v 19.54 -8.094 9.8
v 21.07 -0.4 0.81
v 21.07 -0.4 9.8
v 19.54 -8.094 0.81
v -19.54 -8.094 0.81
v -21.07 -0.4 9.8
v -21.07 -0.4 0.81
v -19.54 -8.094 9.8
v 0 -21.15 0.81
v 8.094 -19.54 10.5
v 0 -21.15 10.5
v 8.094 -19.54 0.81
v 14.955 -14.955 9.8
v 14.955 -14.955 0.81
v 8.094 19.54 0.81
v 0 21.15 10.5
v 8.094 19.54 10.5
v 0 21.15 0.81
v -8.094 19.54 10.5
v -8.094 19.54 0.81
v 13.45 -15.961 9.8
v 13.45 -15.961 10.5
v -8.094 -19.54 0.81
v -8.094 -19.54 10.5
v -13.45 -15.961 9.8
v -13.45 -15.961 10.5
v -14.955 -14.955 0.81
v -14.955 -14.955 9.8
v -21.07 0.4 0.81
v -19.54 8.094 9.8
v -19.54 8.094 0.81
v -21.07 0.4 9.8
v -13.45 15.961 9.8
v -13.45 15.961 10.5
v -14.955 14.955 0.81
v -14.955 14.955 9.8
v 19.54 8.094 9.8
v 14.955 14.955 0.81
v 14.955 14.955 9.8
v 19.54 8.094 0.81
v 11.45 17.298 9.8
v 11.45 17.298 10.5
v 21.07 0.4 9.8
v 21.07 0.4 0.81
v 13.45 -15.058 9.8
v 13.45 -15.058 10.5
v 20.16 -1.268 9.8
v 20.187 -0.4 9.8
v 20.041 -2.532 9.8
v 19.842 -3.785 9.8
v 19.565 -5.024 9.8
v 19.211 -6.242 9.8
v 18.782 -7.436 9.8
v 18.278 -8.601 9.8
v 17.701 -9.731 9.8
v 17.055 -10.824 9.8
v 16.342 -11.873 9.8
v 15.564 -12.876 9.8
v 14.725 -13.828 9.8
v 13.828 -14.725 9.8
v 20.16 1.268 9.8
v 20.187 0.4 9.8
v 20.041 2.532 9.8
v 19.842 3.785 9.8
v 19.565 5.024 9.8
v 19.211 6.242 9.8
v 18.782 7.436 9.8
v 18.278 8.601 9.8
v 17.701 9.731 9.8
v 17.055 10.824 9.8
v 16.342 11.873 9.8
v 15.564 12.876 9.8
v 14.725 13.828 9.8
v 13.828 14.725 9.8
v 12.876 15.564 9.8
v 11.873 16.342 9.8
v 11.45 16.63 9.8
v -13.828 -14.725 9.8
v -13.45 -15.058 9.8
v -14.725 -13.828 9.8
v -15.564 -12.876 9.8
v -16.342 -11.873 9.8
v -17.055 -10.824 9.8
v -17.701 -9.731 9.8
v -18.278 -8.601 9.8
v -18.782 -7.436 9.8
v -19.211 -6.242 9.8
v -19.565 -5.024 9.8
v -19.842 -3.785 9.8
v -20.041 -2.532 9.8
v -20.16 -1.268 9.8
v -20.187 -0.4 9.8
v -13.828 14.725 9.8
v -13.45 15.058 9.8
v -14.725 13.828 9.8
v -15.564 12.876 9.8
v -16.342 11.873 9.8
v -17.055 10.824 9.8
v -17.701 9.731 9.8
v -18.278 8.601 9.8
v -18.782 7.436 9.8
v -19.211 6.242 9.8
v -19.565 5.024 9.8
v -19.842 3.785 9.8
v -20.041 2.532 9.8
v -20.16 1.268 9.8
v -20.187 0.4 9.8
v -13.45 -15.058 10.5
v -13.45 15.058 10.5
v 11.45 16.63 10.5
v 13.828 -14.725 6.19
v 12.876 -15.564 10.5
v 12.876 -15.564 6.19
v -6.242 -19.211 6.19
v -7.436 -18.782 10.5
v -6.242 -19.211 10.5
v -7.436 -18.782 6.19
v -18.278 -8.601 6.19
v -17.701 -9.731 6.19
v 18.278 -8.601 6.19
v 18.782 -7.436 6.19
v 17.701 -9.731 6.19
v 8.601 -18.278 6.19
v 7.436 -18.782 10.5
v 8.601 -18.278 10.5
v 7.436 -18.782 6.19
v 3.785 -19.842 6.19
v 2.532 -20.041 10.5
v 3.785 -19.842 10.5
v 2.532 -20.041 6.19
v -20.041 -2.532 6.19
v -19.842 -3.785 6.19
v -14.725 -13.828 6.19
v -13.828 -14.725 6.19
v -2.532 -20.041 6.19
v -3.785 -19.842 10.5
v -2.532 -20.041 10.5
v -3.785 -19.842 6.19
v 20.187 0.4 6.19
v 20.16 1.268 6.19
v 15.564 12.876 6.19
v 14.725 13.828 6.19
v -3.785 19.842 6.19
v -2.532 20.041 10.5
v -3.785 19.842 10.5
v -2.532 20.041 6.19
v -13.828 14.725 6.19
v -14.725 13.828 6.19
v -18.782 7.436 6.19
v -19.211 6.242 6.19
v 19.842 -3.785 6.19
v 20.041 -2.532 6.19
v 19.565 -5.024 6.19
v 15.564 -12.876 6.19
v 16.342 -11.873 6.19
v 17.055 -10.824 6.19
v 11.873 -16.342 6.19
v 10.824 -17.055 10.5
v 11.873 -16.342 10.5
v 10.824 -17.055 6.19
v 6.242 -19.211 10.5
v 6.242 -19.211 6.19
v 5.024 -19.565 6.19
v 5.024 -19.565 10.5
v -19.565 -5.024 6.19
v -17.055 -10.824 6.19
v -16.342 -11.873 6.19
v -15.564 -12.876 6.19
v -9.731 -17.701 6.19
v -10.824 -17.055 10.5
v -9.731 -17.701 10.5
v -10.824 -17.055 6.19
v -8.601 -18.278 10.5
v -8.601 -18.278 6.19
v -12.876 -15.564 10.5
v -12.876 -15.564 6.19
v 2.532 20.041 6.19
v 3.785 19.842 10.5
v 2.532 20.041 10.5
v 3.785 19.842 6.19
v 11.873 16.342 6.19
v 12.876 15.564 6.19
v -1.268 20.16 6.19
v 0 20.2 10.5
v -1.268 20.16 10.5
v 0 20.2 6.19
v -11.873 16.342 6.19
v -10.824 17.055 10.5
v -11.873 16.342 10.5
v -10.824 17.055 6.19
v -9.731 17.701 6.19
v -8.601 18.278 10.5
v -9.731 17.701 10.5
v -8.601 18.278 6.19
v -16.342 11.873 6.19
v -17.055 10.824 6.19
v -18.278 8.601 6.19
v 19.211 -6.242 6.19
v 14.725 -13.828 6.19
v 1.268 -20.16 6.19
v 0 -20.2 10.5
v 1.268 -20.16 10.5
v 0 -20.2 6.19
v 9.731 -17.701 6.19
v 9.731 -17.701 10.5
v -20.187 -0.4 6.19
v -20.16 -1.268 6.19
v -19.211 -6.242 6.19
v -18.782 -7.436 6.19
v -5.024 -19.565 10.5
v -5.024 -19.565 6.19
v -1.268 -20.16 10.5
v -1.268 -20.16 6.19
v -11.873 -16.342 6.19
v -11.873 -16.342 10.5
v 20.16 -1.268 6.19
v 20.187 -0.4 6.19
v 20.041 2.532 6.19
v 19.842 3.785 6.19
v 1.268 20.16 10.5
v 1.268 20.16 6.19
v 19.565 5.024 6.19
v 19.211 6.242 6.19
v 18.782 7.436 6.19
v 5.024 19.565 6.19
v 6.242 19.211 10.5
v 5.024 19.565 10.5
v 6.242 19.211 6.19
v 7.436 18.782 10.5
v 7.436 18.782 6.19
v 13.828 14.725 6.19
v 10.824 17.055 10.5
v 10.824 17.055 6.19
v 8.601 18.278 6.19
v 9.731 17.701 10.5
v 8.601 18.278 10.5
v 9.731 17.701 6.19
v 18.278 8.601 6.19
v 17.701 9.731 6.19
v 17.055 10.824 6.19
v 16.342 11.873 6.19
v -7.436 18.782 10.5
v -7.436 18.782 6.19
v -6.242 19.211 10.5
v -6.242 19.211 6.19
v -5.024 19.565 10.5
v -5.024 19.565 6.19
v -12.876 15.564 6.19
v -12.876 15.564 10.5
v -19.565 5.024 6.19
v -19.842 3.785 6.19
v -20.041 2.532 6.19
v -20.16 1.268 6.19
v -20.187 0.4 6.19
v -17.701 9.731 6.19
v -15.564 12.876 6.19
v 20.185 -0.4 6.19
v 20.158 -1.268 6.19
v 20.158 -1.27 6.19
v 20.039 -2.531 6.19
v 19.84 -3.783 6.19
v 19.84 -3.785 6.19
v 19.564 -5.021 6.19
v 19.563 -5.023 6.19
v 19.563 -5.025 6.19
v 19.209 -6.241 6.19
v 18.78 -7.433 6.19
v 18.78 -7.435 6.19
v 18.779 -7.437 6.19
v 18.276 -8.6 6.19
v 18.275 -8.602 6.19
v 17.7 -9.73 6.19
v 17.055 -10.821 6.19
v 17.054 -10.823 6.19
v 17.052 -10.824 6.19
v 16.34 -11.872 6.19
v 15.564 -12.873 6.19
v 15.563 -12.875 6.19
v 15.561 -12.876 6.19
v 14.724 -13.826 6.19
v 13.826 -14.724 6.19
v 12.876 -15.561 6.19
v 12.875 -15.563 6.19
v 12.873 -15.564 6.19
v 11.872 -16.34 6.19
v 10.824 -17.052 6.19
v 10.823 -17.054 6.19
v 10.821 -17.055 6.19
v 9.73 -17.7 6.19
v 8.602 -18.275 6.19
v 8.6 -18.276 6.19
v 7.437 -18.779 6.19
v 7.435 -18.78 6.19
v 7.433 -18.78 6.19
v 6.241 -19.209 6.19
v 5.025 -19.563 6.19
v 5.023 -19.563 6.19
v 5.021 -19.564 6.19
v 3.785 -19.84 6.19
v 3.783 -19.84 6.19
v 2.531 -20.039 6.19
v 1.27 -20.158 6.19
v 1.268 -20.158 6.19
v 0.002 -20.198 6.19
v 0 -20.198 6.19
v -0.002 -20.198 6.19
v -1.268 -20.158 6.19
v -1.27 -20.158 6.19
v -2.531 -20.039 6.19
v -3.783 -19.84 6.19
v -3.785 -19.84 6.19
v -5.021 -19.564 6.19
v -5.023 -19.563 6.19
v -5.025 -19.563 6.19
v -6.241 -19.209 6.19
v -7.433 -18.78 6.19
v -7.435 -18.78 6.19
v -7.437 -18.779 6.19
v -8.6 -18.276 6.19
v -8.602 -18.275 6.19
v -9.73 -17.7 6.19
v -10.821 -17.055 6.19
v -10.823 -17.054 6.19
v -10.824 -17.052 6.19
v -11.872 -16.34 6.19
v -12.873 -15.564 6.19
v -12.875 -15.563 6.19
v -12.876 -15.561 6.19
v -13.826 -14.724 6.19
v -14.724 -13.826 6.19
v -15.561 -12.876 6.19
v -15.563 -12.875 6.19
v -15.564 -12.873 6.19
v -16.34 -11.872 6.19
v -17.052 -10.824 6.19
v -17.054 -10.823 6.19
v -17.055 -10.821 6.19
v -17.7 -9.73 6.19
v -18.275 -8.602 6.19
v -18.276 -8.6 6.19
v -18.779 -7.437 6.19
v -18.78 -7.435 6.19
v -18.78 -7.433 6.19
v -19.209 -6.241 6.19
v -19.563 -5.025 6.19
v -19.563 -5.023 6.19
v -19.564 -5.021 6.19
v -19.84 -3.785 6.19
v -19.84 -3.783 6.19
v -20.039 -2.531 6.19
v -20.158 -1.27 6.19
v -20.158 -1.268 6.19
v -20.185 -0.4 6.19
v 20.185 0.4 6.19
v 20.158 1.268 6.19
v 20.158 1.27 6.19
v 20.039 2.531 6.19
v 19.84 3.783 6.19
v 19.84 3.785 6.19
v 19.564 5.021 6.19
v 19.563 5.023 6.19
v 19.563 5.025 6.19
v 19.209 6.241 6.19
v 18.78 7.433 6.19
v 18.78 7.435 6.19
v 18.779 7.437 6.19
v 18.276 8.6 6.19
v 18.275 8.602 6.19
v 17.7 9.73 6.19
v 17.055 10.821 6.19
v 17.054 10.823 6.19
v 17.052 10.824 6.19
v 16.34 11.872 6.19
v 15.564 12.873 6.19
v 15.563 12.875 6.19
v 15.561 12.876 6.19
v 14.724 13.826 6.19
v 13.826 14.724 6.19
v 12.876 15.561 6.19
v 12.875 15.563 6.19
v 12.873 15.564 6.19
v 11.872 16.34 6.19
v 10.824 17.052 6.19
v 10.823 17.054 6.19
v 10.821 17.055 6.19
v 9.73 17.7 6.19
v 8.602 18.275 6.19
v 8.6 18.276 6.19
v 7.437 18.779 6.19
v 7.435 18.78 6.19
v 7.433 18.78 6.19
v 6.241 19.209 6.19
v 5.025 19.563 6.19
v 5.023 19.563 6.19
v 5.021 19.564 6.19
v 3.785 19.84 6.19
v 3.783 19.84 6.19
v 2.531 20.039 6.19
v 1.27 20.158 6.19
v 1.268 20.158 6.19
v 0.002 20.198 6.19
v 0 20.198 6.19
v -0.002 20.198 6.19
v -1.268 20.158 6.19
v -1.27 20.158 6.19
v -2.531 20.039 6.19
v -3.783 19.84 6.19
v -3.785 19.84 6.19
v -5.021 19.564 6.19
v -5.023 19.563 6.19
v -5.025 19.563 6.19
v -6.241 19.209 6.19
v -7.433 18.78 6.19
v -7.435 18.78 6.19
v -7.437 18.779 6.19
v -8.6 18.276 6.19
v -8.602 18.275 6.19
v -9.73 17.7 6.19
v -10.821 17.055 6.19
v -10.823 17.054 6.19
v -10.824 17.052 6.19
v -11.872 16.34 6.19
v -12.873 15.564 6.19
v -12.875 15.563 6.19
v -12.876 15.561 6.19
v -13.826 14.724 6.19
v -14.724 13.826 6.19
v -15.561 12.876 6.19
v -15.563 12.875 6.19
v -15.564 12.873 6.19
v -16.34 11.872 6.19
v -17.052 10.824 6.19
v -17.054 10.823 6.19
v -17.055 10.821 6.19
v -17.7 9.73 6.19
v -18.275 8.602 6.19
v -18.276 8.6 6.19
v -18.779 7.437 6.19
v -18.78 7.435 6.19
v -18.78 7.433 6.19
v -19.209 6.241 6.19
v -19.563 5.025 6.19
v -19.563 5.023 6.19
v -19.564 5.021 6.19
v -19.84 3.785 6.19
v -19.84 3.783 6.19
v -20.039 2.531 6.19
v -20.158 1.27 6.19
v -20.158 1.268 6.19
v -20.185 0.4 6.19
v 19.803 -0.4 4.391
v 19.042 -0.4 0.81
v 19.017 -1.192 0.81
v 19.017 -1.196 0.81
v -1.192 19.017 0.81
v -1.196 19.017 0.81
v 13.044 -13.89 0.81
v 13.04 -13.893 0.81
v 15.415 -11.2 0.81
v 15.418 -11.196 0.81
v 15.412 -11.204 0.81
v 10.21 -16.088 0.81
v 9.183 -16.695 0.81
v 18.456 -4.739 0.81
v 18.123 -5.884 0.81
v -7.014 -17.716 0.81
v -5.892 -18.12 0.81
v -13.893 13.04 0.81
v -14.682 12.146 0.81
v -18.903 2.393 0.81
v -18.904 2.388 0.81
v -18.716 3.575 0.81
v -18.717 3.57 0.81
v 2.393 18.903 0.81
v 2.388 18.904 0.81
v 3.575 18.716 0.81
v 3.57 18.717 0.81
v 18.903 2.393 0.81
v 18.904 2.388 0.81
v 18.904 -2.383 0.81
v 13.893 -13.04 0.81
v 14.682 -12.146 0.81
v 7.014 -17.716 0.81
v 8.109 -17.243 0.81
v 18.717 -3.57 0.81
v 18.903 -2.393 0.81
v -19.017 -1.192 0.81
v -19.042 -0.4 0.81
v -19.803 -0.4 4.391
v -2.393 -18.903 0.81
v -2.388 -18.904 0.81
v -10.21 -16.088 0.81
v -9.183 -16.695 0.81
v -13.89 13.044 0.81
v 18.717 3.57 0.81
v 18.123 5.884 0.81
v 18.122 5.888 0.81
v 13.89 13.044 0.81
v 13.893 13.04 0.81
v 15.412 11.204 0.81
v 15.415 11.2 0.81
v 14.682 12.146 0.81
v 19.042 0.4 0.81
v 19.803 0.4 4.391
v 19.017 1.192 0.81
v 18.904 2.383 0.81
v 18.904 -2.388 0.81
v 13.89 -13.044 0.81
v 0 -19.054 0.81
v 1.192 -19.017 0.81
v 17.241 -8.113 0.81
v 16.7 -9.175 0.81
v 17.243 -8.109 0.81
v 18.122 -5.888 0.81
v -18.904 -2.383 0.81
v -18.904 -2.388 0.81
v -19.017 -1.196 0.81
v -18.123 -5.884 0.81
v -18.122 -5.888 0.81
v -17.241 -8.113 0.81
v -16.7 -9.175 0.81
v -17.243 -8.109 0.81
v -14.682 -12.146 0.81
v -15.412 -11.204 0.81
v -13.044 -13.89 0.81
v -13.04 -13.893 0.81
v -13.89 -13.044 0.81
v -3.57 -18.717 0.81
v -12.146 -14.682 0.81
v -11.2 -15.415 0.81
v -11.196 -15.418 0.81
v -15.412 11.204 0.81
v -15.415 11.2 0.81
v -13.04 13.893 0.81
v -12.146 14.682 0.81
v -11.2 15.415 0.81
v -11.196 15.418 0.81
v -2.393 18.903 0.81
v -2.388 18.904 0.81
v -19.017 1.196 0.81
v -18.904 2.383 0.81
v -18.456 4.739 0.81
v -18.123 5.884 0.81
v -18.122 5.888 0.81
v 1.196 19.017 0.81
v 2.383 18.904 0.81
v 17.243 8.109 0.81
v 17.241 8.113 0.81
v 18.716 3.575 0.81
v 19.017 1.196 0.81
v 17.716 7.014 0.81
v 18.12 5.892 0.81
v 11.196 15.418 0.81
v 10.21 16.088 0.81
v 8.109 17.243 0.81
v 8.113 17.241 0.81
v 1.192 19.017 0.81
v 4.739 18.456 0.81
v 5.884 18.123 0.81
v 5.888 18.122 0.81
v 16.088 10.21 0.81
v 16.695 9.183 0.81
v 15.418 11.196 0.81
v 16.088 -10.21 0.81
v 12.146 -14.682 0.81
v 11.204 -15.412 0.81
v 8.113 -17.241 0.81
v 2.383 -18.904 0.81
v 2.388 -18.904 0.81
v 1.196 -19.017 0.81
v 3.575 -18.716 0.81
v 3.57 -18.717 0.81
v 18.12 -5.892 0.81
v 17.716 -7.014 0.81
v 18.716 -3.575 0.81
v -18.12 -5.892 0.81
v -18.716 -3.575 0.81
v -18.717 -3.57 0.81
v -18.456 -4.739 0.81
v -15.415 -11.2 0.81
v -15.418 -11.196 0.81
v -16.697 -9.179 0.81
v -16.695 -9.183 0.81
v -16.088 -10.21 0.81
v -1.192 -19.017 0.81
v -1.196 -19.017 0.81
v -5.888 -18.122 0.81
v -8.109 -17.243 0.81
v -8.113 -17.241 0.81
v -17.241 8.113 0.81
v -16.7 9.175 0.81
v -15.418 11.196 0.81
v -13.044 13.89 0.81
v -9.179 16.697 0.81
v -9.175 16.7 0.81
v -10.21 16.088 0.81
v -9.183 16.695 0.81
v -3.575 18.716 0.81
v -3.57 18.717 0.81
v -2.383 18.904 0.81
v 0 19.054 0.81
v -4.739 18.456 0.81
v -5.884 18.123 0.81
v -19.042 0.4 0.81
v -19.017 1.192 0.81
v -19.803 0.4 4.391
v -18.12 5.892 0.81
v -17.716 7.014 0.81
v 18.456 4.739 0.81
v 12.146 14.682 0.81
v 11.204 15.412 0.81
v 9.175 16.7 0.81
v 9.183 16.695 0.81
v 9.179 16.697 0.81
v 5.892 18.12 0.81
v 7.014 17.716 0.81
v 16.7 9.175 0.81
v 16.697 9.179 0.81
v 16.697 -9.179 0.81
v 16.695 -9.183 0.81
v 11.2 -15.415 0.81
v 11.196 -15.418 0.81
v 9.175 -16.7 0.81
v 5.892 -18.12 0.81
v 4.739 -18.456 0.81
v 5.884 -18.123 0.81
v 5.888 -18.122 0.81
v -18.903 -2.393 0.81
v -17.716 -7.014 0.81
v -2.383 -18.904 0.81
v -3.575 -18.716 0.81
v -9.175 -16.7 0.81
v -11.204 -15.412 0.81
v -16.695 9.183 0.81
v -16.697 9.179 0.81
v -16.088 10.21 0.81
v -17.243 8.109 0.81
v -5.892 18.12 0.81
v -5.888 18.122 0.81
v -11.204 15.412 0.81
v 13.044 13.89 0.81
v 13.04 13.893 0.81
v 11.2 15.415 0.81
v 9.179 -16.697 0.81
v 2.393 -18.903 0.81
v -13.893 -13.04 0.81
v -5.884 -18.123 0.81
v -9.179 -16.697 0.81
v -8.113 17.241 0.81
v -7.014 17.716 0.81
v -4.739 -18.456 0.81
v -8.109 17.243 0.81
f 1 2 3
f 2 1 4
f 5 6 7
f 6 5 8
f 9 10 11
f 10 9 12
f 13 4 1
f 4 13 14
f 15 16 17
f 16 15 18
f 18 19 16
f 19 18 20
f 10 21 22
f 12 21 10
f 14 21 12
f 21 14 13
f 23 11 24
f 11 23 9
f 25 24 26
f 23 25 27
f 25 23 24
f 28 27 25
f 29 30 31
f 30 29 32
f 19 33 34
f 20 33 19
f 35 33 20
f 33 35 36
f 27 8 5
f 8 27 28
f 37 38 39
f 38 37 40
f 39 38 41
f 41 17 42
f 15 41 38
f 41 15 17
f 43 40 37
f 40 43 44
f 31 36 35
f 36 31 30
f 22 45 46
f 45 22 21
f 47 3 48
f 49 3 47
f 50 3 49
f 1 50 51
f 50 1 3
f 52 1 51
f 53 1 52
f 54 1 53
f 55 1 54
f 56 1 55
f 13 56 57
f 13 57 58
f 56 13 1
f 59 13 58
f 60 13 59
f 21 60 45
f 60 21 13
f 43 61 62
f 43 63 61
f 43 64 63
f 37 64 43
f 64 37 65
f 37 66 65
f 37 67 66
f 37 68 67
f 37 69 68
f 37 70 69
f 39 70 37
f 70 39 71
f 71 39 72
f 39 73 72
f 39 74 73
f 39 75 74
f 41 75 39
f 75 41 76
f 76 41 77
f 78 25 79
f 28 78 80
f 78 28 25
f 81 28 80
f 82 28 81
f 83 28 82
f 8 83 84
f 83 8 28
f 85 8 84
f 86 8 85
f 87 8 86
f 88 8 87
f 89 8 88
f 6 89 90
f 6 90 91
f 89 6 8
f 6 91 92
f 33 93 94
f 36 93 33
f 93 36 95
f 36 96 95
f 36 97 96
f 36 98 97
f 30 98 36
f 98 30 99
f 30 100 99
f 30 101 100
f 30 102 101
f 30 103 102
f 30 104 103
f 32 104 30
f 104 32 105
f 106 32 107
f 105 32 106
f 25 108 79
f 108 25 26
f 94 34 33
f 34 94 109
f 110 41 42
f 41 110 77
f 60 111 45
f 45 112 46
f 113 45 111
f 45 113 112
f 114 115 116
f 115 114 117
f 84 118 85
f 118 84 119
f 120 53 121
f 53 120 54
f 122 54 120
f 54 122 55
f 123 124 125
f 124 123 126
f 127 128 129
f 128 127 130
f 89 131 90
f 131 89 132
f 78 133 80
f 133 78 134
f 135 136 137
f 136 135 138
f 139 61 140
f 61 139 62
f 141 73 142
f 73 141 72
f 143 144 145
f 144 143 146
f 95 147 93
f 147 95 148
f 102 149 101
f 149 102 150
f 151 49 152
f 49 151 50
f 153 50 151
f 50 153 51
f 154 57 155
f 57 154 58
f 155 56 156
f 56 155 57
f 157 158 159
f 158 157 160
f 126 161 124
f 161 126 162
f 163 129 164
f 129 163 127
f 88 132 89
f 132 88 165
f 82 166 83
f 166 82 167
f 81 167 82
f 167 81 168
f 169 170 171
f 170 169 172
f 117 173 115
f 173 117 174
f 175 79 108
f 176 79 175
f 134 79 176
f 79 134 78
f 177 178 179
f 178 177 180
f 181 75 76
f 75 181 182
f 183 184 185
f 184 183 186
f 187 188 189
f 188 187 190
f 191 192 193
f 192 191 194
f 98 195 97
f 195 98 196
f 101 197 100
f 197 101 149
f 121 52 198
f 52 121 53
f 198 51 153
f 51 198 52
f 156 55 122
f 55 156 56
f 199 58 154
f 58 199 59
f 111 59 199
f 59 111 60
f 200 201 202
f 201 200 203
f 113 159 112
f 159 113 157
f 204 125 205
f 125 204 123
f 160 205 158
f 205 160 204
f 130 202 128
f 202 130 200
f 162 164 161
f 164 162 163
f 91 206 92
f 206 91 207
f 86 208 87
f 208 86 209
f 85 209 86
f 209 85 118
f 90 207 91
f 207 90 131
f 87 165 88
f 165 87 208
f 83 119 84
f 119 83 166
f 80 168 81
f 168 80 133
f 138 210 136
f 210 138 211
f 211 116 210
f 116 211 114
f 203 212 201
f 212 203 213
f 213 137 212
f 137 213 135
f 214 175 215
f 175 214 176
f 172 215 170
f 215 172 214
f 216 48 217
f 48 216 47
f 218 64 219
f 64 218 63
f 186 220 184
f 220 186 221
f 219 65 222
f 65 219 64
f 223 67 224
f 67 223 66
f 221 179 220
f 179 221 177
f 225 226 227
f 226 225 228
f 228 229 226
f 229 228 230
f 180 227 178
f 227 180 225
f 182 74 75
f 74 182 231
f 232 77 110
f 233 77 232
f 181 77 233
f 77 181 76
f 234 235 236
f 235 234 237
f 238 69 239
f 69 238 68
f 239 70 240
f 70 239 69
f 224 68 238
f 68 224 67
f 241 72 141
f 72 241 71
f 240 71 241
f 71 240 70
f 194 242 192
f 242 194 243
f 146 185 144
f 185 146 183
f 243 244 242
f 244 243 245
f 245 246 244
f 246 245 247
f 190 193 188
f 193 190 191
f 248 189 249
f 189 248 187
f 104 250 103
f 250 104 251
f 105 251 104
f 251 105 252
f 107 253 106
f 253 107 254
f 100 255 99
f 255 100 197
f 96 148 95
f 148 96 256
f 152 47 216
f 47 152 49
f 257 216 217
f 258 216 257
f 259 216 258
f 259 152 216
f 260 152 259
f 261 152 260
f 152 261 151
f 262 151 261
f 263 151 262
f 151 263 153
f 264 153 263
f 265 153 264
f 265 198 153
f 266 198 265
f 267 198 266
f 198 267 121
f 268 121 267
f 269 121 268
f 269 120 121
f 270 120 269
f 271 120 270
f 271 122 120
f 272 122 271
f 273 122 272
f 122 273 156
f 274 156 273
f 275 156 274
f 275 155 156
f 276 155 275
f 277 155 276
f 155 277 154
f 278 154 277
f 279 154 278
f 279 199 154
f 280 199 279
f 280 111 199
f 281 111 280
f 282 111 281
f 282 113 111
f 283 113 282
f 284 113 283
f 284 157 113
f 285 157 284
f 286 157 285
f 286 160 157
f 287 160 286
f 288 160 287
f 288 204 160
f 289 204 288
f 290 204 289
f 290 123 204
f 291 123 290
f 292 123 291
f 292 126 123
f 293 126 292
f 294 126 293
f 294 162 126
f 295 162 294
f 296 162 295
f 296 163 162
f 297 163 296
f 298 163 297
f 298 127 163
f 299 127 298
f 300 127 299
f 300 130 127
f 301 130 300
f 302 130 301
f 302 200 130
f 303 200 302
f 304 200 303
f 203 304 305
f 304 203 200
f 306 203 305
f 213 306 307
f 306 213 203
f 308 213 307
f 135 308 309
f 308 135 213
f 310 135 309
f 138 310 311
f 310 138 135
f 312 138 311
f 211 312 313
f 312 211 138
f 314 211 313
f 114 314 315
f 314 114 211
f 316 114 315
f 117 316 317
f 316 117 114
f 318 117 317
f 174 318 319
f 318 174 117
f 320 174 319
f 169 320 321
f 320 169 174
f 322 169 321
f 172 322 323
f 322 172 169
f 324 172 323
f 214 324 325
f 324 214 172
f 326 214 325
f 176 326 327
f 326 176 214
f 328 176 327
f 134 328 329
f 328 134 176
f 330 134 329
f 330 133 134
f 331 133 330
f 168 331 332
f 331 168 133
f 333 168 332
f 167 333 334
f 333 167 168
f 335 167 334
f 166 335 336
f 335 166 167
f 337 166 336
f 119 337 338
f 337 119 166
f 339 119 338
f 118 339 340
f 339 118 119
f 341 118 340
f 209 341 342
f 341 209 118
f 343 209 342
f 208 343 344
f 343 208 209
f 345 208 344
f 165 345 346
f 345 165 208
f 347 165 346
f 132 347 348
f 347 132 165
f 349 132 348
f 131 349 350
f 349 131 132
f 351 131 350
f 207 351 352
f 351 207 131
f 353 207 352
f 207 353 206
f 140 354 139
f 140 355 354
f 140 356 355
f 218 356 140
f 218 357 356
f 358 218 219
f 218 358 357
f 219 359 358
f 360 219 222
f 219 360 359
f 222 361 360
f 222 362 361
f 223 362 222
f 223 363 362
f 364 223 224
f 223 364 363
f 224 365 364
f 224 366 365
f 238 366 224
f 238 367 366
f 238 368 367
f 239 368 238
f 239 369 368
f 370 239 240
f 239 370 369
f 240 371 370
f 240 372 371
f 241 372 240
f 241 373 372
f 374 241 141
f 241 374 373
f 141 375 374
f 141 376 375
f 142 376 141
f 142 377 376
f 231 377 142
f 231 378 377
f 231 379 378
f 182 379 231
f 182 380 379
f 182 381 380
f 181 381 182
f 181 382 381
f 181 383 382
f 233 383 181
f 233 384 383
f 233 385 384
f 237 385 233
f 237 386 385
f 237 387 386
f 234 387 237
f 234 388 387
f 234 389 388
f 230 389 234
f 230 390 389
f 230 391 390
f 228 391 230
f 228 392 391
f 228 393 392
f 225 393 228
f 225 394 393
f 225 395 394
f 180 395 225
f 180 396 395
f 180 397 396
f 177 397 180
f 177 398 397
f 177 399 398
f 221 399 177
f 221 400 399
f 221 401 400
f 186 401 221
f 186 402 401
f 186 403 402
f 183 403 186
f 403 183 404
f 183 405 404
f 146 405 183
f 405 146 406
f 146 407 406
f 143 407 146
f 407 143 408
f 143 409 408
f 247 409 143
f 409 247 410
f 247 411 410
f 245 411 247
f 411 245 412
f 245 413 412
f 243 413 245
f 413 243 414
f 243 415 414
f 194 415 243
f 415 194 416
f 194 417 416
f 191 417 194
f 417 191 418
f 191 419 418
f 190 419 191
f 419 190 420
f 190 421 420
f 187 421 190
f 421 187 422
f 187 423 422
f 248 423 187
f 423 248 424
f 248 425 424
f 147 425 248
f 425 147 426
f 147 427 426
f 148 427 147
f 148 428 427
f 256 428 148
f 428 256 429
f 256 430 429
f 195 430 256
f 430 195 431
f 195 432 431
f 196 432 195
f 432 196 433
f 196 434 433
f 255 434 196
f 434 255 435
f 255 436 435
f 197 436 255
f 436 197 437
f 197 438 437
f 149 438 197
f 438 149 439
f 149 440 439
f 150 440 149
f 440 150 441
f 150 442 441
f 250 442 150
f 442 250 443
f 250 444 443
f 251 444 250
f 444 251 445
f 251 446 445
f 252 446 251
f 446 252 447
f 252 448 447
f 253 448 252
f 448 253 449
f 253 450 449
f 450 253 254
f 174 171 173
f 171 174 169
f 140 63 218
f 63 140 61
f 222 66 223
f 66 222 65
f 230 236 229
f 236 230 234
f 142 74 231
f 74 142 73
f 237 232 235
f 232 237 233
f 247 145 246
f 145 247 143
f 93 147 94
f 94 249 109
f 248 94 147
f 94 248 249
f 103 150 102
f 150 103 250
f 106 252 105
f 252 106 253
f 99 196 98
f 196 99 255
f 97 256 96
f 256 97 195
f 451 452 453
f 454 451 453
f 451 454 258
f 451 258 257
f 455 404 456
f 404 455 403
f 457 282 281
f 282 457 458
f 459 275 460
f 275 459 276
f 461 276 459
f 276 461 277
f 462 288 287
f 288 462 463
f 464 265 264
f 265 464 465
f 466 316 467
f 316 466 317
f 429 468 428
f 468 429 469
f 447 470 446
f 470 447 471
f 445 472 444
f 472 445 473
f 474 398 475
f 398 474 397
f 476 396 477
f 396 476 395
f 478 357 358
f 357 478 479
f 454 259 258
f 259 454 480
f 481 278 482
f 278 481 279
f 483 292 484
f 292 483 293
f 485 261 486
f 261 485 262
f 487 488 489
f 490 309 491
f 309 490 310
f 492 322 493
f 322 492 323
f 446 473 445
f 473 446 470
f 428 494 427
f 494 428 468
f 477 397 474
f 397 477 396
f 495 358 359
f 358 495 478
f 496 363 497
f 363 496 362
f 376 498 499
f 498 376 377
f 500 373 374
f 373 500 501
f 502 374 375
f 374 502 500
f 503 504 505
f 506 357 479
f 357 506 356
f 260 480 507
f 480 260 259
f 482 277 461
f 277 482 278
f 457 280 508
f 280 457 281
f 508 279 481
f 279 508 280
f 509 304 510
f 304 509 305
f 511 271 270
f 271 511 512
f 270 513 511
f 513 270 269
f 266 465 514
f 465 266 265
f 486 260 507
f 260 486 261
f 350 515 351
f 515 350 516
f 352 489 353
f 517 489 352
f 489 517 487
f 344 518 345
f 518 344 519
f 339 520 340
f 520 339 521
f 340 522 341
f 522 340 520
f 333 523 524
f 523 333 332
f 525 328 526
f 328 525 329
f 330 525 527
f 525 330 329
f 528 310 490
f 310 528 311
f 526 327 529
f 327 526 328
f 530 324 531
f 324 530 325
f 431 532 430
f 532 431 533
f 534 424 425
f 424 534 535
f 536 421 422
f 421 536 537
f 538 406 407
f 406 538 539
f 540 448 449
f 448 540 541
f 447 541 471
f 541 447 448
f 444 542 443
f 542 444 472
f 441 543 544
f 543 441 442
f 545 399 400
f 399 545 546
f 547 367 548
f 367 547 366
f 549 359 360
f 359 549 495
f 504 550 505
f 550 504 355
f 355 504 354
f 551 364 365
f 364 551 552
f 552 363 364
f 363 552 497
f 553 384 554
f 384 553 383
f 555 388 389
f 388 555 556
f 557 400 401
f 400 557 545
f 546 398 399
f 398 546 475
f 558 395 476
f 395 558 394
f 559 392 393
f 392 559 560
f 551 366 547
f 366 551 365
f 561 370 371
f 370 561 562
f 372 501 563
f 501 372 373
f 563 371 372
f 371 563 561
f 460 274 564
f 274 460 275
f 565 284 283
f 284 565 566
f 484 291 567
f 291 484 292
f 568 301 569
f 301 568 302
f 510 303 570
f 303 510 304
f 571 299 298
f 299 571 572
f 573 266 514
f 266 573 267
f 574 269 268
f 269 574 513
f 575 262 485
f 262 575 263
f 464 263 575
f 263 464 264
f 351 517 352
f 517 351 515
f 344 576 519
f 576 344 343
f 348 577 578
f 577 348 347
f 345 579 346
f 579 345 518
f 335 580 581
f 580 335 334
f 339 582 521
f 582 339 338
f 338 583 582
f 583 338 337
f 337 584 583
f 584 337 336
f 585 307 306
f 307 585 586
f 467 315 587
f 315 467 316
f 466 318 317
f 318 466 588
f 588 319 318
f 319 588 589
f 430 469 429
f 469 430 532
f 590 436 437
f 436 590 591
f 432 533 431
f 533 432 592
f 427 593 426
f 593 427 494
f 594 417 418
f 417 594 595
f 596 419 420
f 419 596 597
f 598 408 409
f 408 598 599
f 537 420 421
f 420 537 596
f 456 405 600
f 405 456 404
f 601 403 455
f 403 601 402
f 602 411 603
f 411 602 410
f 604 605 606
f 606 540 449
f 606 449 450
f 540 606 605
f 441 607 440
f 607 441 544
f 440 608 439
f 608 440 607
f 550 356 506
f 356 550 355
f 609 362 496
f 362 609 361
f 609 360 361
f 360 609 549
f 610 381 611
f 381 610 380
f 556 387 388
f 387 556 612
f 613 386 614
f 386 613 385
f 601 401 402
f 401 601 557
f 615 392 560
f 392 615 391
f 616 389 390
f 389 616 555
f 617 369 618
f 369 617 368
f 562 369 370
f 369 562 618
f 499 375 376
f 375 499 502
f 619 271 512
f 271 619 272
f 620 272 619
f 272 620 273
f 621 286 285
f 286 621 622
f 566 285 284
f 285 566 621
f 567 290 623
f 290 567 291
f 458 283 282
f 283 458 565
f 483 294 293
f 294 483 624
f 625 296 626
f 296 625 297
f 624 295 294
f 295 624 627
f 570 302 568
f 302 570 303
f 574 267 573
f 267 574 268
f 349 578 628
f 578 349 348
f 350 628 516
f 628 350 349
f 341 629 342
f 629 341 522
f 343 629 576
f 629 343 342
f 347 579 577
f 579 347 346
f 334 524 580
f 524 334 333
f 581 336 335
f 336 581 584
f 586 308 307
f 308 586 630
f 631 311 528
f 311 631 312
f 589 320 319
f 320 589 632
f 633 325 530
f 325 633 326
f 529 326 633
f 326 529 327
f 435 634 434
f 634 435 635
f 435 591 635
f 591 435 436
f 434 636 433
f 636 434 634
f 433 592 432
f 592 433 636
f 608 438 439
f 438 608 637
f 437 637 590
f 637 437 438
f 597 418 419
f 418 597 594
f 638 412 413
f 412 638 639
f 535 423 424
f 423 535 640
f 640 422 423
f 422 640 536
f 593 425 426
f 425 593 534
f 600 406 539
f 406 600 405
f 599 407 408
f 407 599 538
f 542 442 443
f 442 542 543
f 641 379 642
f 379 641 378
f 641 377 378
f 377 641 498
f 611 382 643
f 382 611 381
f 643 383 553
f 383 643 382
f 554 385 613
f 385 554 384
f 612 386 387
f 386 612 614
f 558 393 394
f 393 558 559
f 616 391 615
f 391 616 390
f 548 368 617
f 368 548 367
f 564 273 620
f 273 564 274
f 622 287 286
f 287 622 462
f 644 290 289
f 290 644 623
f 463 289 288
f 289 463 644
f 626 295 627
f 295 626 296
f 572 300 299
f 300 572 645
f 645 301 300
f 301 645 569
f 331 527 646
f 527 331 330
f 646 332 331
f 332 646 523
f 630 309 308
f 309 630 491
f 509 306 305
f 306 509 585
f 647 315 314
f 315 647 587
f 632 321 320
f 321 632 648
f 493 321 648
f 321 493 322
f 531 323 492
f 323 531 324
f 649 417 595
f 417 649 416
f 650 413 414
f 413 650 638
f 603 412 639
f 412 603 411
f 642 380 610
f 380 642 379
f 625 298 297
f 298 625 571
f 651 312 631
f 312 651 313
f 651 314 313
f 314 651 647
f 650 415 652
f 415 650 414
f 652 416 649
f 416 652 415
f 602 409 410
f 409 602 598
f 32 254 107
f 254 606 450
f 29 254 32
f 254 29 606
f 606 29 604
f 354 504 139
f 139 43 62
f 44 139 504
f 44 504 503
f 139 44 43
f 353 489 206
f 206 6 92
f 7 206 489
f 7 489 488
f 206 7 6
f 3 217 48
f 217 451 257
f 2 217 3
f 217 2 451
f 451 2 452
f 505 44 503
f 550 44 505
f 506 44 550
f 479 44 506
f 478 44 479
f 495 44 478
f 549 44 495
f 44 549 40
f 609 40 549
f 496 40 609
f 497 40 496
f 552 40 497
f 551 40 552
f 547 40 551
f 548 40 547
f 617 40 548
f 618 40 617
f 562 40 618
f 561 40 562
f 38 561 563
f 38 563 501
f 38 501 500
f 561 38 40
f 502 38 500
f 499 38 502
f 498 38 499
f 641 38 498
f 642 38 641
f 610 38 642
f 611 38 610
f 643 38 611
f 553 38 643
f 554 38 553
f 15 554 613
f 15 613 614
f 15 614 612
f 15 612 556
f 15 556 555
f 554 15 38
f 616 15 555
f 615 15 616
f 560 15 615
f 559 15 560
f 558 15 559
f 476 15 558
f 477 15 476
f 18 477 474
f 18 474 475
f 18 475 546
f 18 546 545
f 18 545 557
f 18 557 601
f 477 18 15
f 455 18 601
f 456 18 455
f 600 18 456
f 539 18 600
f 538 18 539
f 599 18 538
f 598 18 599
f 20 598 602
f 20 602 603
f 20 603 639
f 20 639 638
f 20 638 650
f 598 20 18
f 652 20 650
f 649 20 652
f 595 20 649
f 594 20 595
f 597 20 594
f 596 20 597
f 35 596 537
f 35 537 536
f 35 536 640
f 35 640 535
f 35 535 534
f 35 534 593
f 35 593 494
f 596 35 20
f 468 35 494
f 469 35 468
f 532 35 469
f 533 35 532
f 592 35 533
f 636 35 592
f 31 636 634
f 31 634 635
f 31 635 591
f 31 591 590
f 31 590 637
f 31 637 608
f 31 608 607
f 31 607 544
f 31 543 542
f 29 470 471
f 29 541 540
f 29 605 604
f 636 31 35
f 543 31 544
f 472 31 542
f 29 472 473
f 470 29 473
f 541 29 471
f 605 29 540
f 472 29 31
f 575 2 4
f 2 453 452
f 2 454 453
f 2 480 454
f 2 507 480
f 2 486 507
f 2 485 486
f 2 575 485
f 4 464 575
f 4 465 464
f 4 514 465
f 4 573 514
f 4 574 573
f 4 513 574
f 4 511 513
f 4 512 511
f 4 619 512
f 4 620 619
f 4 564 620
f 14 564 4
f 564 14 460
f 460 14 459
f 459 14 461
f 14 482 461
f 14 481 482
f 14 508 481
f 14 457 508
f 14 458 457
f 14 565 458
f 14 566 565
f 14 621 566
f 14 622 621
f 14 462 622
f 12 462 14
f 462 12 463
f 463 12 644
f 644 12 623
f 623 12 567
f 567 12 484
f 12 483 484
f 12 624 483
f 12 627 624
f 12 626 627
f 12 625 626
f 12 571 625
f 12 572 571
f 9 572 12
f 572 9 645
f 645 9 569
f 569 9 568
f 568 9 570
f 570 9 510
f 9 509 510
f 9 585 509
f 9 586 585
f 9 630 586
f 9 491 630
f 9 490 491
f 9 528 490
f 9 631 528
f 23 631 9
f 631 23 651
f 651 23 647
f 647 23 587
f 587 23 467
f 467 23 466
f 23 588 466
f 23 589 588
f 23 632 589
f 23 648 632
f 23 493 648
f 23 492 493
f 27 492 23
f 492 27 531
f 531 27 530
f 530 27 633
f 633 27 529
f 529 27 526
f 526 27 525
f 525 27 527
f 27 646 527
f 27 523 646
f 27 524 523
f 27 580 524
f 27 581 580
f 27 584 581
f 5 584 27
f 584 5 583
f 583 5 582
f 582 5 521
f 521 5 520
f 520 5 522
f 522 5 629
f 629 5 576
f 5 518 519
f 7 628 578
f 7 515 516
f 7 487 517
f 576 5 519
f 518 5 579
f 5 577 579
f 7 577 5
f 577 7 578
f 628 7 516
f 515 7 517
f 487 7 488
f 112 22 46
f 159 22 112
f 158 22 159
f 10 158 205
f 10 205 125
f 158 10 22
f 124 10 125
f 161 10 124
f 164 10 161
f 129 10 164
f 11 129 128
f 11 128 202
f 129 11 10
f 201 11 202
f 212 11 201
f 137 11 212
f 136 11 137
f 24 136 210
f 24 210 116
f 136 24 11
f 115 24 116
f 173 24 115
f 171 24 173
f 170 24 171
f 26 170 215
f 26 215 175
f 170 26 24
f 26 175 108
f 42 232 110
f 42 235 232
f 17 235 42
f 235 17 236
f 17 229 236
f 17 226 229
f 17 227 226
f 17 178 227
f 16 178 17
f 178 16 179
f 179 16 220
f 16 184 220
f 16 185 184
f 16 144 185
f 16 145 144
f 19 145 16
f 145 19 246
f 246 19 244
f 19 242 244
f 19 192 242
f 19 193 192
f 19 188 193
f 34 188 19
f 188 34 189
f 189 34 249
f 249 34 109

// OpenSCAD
mm=1;
eps = 0.01*mm;
$fn=100;

tap_outer_radius = 49.8*mm/2;
tap_height=20*mm;
module tap_body() {
    color([0.9,0.9,0.9])
    cylinder(r=tap_outer_radius, h=tap_height);
}
*tap_body();

plastic_gasket_r1 = 43.4*mm/2; //closest to tap
plastic_gasket_r2 = 40.9*mm/2;
plastic_gasket_h1 = 0.5*mm;
plastic_gasket_h2 = 0.9*mm;
plastic_gasket_h=plastic_gasket_h1+plastic_gasket_h2;
module plastic_gasket(){
    color("gray")
    union(){
        translate([0,0,plastic_gasket_h2])
        cylinder(r=plastic_gasket_r1,h=plastic_gasket_h1);
        cylinder(r=plastic_gasket_r2,h=plastic_gasket_h1+plastic_gasket_h2);
    }
}
*plastic_gasket(); 

slop = 0.15*mm;
metal_ring_r1=34.8*mm/2+slop; // bottom
metal_ring_r2=40.1*mm/2+slop; // middle
metal_ring_r3=37.8*mm/2+slop; //top
metal_ring_h1=2.8*mm; //bottom segment
metal_ring_h2=6.5*mm; // middle segment
metal_ring_h3=5.4*mm; //top segment
metal_ring_h=metal_ring_h1+metal_ring_h2+metal_ring_h3;
cutout_x = 24.7*mm;
cutout_z=4.6*mm;
module metal_ring() {
    color("orange")
    difference(){
        union(){
            cylinder(r1=metal_ring_r1,r2=metal_ring_r2,h=metal_ring_h1+eps);
            translate([0,0,metal_ring_h1])
            cylinder(r=metal_ring_r2,h=metal_ring_h2+eps);
            translate([0,0,metal_ring_h1+metal_ring_h2])
            cylinder(r1=metal_ring_r2,r2=metal_ring_r3,h=metal_ring_h3+eps);
        }
        union(){
            for(rot=[0,180]){
                rotate([0,0,rot])
                translate([cutout_x/2,-2*metal_ring_r2,-eps])
                cube([cutout_x,4*metal_ring_r2,cutout_z+eps]);
            }
        }
    }
}
*metal_ring();

module tap(){
    translate([0,0,metal_ring_h+plastic_gasket_h])
    tap_body();
    translate([0,0,metal_ring_h])
    plastic_gasket();
    metal_ring();
}
*tap();

sink_hole_depth=20*mm; // made-up number
sink_hole_radius=42.3*mm/2;
sink_hole_outer_radius =tap_outer_radius; 
module sink_hole() {
    difference(){
        union(){
            translate([0,0,-sink_hole_depth])
            cylinder(r=sink_hole_outer_radius, h=sink_hole_depth);
        }
        union(){
             translate([0,0,-sink_hole_depth-eps])
             cylinder(r=sink_hole_radius, h=sink_hole_depth+2*eps,$fn=16);
             // make hole artificially chunky to cause ribs on gasket
        }
    }
}
//sink_hole();

collar_sep = 26.9*mm;
collar_z=5*mm; // really 2mm - artifically bigger
collar_y=2*sink_hole_outer_radius; // made-up number
collar_x=sink_hole_outer_radius;//made-up number
notch_x = 2*mm;
notch_y = 7*mm;
notch_placement=17.7*mm; // tweak until notch is at the side
module sink_collar(){
    for(rot=[0,180])
    rotate([0,0,rot])
    translate([collar_sep/2,-collar_y/2,-collar_z])
    cube([collar_x,collar_y,collar_z]);
    
    color("red")
    translate([collar_sep/2-notch_x,-notch_placement,-collar_z])
    cube([notch_x+eps,notch_y,collar_z]);
}
//sink_collar();

collar_z_offset=9.8*mm;
module sink(){
    sink_hole();
    translate([0,0,-collar_z_offset])
    sink_collar();
}
//sink();

tap_z = -15.5*mm; // tweak until it looks spiffy
module sink_assembly() {
    sink();
    translate([0,0,tap_z])
    tap();
}
*sink_assembly();

gasket_z = -10.5*mm;
gasket_h = 9.7*mm;
gasket_inner_hole_rad = cutout_x/2;
lop=0.8*mm;
cut_size=80*mm;
module gasket(){
    difference() {
        union() {
            translate([0,0,gasket_z])
            cylinder(r=tap_outer_radius-eps,h=gasket_h-eps);
        }
        union() {
            color("red")
            cube([cut_size,lop,cut_size],center=true);
            cylinder(r=gasket_inner_hole_rad,h=4*gasket_h, center=true);
            sink_assembly();
        }
    }
}
rotate([180,0,0])
gasket();
